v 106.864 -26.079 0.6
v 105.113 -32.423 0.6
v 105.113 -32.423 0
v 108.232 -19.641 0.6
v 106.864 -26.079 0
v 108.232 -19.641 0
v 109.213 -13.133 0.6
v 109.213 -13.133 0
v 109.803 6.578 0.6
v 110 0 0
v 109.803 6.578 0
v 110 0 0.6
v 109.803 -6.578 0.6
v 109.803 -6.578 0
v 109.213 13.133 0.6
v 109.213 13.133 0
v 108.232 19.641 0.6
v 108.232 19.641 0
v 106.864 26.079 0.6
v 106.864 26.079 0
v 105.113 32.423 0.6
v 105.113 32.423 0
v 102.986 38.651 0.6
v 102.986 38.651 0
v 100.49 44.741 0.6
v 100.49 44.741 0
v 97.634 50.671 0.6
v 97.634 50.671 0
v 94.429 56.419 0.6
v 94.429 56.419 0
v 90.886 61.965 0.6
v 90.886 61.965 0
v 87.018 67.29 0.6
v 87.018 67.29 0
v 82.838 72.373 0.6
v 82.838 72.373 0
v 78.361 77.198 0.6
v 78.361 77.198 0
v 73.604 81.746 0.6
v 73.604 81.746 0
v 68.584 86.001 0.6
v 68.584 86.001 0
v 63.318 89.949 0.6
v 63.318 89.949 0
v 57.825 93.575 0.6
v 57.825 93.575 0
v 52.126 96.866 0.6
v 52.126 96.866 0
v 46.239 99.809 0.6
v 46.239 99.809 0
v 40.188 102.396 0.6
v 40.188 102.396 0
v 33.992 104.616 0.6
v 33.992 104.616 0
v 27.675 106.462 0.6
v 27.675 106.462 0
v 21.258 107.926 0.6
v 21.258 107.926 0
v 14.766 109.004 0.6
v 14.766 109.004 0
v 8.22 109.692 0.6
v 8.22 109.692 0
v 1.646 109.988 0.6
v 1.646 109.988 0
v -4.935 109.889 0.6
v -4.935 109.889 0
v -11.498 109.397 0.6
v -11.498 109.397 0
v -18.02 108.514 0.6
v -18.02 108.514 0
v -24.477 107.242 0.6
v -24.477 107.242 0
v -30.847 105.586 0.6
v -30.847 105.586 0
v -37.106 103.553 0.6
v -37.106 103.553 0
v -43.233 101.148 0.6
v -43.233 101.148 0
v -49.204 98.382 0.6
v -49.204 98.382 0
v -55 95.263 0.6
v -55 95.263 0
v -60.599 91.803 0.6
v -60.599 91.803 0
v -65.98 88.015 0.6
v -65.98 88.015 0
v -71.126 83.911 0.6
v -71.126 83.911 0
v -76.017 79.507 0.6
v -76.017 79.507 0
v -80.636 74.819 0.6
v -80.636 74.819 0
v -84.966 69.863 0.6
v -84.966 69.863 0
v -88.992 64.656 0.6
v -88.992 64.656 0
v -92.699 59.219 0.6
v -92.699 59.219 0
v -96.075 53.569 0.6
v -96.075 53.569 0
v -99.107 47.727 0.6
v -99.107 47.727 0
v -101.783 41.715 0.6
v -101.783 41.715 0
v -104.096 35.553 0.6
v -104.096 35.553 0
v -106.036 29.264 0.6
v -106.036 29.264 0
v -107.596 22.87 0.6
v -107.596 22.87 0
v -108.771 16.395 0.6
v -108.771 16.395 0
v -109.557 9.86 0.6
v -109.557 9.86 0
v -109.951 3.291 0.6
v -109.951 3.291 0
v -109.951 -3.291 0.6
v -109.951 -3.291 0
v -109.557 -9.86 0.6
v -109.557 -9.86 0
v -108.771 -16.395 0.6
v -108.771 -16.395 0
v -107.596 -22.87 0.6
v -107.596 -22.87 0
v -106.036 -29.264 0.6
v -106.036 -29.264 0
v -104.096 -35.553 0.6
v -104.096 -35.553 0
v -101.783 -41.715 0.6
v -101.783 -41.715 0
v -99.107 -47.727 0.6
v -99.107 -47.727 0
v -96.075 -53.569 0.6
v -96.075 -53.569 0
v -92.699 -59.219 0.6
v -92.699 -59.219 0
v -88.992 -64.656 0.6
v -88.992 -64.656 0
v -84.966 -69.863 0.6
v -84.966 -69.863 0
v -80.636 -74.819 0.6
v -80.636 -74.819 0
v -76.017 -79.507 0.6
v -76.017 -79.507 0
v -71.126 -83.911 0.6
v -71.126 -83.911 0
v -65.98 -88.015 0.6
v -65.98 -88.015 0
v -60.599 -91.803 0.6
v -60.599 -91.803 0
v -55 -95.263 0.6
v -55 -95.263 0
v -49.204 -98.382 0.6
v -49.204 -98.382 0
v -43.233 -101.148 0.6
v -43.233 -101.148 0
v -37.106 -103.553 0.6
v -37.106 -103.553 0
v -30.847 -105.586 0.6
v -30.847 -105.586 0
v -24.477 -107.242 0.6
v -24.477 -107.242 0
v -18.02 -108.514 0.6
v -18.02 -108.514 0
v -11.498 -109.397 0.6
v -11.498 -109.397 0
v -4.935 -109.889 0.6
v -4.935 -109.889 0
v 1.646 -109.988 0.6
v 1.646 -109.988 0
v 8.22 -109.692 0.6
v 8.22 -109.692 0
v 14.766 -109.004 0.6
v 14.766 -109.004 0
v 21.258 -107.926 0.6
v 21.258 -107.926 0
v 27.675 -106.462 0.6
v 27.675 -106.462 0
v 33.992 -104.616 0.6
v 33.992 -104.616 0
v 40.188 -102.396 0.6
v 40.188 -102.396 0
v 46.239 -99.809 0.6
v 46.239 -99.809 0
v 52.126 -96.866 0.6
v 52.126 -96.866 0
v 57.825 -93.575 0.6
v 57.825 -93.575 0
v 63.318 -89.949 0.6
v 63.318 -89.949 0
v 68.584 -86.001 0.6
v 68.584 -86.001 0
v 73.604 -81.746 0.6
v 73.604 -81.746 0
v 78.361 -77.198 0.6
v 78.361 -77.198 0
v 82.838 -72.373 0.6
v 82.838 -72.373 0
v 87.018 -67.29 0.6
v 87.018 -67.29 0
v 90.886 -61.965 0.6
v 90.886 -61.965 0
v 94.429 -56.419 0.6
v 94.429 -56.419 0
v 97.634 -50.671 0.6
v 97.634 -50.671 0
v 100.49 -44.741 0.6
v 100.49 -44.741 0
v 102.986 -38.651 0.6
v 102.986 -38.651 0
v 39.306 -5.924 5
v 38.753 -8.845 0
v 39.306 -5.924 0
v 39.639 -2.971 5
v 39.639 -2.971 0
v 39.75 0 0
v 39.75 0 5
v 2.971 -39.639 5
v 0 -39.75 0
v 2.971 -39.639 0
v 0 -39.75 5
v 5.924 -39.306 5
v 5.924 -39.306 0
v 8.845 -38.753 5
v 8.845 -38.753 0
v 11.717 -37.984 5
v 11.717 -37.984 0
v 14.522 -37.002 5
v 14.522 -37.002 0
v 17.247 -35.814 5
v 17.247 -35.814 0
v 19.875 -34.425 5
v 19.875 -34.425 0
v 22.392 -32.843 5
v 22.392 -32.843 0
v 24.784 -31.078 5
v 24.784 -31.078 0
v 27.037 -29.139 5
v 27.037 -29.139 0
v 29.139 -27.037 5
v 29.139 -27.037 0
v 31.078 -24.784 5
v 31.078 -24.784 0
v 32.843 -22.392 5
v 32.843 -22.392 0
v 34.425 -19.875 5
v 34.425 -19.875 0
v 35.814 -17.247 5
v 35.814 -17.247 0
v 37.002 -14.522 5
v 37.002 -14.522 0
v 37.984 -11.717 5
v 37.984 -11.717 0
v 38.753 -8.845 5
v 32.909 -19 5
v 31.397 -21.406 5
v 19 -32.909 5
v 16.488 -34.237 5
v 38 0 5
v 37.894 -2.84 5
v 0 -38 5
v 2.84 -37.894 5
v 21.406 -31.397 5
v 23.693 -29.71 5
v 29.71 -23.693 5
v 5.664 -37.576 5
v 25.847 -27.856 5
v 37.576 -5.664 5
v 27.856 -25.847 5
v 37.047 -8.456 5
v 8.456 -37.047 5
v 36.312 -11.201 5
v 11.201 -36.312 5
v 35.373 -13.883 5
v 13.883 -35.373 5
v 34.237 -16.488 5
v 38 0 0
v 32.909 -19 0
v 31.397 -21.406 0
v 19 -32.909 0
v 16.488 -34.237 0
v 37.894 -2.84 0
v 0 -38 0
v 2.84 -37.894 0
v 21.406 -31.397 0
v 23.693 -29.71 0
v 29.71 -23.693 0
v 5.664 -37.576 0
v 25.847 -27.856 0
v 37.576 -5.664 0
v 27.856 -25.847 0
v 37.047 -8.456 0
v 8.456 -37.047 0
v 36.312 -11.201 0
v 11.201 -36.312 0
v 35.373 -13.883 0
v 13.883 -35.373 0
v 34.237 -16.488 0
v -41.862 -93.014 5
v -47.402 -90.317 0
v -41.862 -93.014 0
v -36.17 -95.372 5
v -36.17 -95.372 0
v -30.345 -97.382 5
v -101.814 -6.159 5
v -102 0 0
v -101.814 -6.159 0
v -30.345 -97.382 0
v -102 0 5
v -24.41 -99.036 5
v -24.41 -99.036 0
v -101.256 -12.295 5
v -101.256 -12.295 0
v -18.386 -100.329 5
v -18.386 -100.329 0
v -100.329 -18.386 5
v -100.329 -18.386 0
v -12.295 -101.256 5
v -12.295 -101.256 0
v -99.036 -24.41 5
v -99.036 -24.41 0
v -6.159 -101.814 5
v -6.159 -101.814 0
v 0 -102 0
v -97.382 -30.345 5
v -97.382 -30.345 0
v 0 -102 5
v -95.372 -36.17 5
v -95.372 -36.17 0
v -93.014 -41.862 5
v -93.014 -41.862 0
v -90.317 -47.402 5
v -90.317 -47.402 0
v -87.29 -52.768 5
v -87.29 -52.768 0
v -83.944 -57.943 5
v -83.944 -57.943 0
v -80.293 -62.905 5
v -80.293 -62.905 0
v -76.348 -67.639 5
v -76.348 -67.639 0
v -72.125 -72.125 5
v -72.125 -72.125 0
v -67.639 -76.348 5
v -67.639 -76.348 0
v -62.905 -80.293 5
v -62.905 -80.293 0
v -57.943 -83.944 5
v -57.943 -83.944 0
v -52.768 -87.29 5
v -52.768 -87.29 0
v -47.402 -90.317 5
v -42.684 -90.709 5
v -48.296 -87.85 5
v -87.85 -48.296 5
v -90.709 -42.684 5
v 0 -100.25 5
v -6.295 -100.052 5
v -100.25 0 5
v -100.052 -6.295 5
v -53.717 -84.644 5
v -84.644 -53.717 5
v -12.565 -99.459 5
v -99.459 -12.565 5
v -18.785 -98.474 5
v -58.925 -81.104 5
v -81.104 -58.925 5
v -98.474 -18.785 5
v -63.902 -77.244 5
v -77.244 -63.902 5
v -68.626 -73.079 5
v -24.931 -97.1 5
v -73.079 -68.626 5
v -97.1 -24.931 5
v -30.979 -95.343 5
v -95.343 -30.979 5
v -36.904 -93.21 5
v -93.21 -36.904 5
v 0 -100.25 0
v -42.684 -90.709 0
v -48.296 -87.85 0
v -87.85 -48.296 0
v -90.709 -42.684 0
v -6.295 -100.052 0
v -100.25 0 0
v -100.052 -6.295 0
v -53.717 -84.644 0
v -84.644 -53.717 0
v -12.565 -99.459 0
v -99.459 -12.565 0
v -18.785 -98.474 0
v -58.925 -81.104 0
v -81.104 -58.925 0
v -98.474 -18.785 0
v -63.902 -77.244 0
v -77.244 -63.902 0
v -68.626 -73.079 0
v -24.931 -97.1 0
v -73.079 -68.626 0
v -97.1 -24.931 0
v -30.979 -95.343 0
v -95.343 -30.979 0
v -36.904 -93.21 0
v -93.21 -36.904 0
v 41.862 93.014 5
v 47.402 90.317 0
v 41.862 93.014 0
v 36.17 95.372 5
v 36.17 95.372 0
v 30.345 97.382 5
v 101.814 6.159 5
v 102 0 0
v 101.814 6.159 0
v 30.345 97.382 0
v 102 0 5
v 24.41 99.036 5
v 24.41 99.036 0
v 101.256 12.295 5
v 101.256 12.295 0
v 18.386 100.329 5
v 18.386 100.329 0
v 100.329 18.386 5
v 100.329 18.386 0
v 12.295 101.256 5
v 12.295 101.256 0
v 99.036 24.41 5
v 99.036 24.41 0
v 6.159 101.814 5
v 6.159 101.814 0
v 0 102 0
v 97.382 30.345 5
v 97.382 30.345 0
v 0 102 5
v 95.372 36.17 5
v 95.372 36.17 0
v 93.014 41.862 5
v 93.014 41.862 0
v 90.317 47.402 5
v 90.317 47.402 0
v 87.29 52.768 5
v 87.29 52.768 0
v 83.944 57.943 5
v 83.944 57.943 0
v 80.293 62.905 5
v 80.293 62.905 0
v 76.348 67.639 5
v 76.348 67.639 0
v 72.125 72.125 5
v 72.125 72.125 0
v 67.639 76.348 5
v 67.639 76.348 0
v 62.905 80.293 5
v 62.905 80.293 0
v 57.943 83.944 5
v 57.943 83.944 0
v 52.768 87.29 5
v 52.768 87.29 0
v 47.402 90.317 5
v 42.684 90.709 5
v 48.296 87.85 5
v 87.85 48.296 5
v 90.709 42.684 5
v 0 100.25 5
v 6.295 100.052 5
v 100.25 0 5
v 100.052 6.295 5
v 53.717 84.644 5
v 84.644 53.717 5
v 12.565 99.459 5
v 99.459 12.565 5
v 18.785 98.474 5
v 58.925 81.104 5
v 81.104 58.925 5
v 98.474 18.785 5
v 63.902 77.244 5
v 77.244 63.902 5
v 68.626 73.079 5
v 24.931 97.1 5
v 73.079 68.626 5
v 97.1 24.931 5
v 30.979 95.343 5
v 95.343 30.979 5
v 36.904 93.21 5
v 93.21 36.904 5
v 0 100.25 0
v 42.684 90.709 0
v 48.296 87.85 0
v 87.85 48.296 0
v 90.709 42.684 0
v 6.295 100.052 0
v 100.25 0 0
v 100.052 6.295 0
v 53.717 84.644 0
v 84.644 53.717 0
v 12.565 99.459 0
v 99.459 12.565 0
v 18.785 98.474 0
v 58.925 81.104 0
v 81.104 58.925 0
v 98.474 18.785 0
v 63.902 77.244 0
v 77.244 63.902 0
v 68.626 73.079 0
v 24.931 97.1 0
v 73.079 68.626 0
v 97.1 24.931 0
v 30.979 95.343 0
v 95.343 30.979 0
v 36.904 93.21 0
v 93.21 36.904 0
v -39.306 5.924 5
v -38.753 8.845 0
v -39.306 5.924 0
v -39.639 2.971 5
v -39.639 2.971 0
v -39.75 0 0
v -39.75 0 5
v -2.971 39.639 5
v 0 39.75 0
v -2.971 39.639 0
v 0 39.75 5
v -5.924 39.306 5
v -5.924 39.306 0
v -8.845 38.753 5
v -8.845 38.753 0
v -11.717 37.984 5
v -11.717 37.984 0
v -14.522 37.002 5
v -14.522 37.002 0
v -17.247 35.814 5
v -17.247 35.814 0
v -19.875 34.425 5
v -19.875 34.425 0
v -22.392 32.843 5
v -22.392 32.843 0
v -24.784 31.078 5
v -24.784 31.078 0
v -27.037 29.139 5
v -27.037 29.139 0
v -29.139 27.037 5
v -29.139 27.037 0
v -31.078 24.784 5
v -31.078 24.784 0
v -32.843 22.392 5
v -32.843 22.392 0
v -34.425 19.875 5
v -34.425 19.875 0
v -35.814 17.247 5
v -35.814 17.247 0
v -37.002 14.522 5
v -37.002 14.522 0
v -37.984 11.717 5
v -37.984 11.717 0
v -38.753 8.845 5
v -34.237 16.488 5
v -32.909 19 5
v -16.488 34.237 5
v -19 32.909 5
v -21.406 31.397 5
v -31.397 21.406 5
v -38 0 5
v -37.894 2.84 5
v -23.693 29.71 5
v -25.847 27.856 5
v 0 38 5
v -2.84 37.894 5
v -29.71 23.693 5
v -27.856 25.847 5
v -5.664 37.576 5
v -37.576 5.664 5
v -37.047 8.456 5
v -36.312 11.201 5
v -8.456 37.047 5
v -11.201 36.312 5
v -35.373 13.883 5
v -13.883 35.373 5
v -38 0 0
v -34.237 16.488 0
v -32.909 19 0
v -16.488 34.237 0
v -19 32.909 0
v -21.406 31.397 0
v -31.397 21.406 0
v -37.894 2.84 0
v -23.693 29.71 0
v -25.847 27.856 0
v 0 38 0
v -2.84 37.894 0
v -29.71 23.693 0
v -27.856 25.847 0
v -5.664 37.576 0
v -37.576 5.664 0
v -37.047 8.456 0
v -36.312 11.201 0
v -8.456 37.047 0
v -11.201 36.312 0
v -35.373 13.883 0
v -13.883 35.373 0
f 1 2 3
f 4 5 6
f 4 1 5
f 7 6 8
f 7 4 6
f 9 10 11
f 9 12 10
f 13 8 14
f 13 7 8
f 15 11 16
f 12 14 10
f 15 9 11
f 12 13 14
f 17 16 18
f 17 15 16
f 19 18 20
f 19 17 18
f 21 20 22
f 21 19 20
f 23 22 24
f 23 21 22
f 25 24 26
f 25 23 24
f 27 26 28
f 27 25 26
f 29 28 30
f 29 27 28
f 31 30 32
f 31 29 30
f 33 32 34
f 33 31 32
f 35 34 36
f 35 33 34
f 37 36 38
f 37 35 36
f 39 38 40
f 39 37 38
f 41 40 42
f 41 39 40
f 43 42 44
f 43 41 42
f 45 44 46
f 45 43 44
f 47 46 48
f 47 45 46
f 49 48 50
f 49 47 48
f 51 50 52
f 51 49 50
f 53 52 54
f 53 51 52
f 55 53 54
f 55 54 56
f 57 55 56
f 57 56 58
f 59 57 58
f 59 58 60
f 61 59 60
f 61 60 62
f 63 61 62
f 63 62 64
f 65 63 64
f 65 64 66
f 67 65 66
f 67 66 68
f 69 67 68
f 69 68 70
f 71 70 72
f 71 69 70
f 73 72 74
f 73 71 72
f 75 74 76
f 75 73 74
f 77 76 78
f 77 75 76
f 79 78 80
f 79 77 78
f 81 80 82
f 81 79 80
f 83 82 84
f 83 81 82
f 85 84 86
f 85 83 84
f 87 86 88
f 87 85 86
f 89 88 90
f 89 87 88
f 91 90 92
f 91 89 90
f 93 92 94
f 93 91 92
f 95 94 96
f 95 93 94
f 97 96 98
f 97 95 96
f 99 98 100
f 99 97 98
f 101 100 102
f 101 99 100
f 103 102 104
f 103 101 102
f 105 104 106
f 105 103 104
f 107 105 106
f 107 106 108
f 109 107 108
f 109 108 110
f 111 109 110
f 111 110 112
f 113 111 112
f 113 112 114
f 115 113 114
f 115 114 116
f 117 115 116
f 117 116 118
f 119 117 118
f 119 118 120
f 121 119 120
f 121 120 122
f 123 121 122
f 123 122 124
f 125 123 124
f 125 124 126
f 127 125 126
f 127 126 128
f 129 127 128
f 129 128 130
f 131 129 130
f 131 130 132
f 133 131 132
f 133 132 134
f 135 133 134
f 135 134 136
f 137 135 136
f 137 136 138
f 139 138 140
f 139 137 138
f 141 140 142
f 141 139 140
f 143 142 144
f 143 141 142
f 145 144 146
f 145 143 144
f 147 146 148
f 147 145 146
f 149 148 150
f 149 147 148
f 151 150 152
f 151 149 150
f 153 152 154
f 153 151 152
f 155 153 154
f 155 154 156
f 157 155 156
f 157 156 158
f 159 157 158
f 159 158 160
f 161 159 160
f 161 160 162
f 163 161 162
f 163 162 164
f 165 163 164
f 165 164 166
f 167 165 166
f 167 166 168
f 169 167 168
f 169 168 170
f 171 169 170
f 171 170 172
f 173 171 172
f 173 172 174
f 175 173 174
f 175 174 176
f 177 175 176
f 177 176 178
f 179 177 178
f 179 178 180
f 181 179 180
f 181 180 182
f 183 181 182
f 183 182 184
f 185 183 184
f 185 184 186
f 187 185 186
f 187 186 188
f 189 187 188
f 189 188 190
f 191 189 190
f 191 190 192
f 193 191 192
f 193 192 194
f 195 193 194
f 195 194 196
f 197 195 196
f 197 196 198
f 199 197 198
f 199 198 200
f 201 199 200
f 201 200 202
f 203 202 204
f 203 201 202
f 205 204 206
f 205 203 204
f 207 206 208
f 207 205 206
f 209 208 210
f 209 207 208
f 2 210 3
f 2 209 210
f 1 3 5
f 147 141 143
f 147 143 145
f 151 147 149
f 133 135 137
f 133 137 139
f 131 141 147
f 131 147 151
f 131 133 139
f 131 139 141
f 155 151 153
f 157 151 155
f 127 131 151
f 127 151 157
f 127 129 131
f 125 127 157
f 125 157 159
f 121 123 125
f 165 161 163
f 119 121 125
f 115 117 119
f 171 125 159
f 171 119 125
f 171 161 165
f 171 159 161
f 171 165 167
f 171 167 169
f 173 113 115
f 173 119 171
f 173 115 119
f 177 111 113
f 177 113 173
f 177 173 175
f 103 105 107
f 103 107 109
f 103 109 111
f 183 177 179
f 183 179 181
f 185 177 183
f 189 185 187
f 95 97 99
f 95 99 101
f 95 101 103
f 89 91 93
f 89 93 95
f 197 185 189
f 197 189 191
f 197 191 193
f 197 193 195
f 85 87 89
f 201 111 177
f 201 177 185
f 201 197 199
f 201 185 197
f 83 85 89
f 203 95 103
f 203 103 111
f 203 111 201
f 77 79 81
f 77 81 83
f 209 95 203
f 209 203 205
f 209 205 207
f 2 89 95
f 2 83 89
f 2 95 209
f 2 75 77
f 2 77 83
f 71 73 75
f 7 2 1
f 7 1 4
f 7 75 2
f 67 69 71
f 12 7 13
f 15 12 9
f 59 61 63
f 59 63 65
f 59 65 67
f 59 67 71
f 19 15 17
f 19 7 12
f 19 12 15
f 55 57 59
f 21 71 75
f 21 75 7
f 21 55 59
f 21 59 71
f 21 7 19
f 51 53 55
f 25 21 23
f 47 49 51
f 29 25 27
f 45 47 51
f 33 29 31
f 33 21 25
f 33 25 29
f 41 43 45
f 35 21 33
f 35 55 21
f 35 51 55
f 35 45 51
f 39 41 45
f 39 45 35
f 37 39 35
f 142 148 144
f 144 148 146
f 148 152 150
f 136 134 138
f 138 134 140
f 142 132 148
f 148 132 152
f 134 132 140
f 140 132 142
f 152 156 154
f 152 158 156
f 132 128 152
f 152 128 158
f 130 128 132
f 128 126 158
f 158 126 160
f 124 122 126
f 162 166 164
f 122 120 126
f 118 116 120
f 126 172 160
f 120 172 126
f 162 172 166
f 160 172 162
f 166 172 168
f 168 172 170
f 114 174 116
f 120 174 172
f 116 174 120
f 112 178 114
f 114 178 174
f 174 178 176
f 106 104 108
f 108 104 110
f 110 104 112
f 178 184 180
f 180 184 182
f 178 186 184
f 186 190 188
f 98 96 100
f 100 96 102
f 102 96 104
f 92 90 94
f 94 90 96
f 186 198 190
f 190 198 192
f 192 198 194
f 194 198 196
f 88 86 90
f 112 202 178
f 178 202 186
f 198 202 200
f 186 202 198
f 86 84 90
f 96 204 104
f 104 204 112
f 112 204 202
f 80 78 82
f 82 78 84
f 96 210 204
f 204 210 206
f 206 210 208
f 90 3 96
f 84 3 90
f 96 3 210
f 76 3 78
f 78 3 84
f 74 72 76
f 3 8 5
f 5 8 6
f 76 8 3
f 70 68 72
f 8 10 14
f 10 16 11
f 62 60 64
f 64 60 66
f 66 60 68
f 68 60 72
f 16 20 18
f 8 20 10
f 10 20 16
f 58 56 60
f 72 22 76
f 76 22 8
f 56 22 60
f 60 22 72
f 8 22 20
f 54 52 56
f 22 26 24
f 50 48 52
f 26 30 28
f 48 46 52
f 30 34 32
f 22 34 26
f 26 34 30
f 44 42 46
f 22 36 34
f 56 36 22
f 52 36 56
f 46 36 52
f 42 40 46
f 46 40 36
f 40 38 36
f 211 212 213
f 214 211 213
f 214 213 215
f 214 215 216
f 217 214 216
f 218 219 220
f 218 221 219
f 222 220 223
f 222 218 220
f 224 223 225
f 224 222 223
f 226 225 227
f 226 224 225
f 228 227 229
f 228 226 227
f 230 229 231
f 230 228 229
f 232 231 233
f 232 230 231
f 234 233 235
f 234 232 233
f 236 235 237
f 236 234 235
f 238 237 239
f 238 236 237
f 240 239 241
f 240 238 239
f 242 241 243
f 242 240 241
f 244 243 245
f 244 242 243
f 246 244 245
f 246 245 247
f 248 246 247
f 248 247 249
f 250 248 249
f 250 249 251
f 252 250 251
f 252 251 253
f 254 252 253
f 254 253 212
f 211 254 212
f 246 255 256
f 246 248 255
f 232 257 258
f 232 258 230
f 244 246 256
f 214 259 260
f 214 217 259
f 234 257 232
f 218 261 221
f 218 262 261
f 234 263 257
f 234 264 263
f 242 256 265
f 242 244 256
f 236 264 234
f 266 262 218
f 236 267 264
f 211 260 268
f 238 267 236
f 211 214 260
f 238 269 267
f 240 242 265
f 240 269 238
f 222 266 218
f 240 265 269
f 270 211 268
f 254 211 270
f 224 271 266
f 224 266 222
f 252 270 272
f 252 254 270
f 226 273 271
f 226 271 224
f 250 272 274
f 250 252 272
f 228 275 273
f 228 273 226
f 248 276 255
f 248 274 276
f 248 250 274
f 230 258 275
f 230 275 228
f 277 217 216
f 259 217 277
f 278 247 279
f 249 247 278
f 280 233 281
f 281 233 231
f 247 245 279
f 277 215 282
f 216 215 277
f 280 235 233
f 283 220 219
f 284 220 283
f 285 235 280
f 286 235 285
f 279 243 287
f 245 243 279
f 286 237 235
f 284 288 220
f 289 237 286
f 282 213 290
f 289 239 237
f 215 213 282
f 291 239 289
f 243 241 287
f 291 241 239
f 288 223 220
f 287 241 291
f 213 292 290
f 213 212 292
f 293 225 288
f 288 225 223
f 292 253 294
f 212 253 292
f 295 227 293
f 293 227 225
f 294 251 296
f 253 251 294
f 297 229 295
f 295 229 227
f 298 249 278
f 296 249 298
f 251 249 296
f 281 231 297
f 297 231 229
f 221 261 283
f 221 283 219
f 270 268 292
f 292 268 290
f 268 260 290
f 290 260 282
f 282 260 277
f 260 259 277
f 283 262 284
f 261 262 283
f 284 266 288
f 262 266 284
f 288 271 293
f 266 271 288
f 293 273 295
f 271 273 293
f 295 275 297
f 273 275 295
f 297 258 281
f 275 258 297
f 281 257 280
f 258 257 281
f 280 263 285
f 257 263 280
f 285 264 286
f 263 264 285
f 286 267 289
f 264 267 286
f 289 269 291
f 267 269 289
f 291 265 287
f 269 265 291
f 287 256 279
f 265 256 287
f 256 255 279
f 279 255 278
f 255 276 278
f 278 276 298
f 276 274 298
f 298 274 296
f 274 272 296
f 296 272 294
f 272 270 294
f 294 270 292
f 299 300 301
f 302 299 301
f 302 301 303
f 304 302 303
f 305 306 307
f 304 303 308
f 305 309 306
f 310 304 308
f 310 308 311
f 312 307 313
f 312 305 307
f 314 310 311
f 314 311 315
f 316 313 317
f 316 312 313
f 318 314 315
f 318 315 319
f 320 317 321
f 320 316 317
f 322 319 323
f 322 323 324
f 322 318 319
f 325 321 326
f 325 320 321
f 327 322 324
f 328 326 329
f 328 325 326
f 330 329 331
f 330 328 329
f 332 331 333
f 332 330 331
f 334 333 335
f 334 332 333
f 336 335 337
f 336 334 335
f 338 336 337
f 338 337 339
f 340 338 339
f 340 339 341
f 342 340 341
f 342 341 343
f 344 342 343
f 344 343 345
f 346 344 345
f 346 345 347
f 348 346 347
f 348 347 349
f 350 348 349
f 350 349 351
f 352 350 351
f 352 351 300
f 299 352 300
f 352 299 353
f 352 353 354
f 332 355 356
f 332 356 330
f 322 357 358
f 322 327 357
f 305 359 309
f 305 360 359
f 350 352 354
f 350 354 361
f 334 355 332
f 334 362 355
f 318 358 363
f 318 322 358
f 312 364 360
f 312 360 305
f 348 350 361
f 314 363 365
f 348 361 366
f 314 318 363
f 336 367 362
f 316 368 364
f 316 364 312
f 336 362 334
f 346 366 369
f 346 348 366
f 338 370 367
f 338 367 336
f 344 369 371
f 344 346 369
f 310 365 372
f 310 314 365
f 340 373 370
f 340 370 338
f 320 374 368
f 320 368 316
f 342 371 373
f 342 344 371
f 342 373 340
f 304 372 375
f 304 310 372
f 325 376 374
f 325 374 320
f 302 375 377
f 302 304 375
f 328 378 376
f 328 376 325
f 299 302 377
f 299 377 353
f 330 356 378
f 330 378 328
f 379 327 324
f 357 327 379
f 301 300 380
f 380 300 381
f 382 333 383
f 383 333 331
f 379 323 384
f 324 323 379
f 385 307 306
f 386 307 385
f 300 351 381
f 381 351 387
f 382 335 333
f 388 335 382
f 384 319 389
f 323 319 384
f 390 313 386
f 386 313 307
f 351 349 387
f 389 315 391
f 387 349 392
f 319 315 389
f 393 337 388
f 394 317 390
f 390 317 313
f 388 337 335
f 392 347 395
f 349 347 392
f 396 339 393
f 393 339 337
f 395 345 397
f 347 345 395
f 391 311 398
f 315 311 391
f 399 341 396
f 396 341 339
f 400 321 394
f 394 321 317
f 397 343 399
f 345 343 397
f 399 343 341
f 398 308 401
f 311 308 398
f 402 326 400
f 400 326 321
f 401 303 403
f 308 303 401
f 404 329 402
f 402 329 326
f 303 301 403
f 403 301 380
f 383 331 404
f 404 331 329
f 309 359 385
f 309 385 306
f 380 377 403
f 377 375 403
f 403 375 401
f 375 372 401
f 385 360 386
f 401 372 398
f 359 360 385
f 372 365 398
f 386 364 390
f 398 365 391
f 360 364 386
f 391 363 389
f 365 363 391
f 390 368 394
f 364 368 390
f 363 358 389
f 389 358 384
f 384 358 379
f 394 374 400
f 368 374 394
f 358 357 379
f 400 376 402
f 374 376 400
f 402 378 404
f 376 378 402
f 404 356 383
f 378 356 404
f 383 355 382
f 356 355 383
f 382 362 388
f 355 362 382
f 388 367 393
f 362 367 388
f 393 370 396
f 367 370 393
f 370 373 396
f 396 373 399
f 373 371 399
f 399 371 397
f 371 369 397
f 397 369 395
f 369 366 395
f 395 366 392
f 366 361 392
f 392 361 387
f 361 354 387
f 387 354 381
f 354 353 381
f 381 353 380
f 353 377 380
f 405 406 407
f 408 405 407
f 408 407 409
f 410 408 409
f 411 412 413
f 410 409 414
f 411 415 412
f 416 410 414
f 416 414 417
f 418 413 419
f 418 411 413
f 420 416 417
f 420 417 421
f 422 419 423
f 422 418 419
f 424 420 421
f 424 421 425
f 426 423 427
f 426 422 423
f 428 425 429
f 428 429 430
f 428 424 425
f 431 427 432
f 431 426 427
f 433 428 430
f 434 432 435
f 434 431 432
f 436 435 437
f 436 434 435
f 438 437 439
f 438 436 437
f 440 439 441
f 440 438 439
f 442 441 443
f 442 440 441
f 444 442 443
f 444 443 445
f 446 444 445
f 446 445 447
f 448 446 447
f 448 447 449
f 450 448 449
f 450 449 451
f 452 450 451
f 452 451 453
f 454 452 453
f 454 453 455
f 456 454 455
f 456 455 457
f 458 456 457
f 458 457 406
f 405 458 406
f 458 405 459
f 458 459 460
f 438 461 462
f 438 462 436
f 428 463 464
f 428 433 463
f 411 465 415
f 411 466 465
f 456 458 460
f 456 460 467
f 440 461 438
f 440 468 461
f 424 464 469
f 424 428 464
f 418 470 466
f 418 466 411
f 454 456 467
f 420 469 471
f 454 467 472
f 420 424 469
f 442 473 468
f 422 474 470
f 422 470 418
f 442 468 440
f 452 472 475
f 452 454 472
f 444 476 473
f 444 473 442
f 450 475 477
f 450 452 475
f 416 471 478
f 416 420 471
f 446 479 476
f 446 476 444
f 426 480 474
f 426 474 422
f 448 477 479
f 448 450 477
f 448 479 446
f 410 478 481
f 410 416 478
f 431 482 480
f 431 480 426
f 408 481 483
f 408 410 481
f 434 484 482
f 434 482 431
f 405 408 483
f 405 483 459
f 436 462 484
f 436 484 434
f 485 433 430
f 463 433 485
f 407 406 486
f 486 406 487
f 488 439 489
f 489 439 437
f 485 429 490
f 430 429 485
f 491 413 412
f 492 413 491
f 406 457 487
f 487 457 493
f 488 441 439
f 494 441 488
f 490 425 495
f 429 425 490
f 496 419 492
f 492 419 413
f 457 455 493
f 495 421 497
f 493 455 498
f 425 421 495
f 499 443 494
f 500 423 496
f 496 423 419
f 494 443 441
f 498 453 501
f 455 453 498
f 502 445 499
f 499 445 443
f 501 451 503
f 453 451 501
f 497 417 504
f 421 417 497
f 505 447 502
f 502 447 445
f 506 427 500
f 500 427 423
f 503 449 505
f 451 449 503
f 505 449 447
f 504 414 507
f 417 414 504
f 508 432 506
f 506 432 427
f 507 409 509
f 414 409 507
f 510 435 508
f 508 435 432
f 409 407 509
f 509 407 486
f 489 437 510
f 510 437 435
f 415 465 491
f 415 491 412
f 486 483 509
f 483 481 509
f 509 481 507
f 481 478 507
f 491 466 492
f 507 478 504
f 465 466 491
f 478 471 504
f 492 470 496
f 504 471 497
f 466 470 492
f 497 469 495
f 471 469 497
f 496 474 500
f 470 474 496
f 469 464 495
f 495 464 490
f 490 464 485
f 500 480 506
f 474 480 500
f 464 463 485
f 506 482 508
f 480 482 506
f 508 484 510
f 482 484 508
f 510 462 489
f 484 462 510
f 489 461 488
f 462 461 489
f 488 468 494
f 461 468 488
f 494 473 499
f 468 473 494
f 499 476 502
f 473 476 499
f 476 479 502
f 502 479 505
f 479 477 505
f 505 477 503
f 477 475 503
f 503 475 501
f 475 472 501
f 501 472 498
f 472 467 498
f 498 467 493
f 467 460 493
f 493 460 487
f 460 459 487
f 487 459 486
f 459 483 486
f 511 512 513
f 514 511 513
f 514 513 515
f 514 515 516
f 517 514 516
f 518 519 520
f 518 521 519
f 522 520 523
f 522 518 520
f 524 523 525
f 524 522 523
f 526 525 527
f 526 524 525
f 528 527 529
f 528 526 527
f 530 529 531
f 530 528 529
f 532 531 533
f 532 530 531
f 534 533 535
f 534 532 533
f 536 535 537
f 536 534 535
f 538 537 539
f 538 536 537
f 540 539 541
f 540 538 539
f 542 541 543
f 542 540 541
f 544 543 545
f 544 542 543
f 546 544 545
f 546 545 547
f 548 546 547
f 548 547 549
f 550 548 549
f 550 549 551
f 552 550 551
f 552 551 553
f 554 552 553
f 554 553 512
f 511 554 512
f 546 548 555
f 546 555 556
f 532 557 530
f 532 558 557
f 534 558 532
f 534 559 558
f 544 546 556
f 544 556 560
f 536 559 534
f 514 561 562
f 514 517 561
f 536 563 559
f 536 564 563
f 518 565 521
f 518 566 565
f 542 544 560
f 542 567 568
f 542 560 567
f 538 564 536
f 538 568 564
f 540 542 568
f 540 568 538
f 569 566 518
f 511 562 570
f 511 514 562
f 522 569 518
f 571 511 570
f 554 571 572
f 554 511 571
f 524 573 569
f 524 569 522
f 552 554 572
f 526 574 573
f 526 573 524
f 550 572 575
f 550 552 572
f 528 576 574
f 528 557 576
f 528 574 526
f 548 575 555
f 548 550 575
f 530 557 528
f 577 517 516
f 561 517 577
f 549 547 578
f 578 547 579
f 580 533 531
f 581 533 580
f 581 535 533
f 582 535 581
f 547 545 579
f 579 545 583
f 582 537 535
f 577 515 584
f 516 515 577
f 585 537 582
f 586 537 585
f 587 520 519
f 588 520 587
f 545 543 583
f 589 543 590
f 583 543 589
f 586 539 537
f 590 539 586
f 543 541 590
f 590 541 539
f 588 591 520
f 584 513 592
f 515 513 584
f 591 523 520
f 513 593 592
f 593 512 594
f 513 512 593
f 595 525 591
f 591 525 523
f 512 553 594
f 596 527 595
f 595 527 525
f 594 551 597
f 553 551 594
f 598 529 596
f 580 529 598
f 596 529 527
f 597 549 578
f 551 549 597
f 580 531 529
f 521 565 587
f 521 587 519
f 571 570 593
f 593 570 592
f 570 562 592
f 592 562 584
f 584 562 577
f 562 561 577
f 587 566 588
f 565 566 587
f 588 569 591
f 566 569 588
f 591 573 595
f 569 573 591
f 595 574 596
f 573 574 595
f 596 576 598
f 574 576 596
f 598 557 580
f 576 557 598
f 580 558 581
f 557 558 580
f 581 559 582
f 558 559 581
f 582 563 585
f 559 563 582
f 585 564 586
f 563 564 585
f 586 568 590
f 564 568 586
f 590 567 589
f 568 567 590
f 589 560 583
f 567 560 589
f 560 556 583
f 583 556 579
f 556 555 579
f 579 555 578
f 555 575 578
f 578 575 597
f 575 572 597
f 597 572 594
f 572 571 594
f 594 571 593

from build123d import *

# Parameters (mm, degrees)
CYLINDER_R             = 110
CYLINDER_DEPTH         = 0.6
CYLINDER002_W          = 100.25
CYLINDER002_H          = 5
CYLINDER002_ANGLE      = 90
CYLINDER001_W          = 102
CYLINDER001_H          = 5
CYLINDER001_ANGLE      = 90
CYLINDER012_W          = 38
CYLINDER012_H          = 5
CYLINDER012_ANGLE      = 90
CYLINDER013_W          = 39.75
CYLINDER013_H          = 5
CYLINDER013_ANGLE      = 90
CUT007_PLACEMENT_ANGLE = 90
CYLINDER015_W          = 100.25
CYLINDER015_H          = 5
CYLINDER015_ANGLE      = 90
CYLINDER014_W          = 102
CYLINDER014_H          = 5
CYLINDER014_ANGLE      = 90
CUT008_PLACEMENT_ANGLE = 180
CYLINDER016_W          = 38
CYLINDER016_H          = 5
CYLINDER016_ANGLE      = 90
CYLINDER017_W          = 39.75
CYLINDER017_H          = 5
CYLINDER017_ANGLE      = 90
CUT009_PLACEMENT_ANGLE = 270


with BuildPart() as cilindro:
    # Cylinder → Cylinder (new body)
    with BuildSketch(Plane.XY):
        Circle(CYLINDER_R)
    extrude(amount=CYLINDER_DEPTH)


with BuildPart() as cilindro002:
    # Cylinder002 → Cylinder002 (revolve)
    with BuildSketch(Plane.XZ):
        with Locations((50.125, 2.5)):
            Rectangle(CYLINDER002_W, CYLINDER002_H)
    revolve(axis=Axis((0, 0, 0), (0, 0, 1)), revolution_arc=CYLINDER002_ANGLE)


with BuildPart() as cut:
    # Cylinder001 → Cylinder001 (revolve)
    with BuildSketch(Plane.XZ):
        with Locations((51, 2.5)):
            Rectangle(CYLINDER001_W, CYLINDER001_H)
    revolve(axis=Axis((0, 0, 0), (0, 0, 1)), revolution_arc=CYLINDER001_ANGLE)

    # Cut: cut Cilindro002
    add(cilindro002.part, mode=Mode.SUBTRACT)


with BuildPart() as cilindro012:
    # Cylinder012 → Cylinder012 (revolve)
    with BuildSketch(Plane.XZ):
        with Locations((19, 2.5)):
            Rectangle(CYLINDER012_W, CYLINDER012_H)
    revolve(axis=Axis((0, 0, 0), (0, 0, 1)), revolution_arc=CYLINDER012_ANGLE)


with BuildPart() as cut007:
    # Cylinder013 → Cylinder013 (revolve)
    with BuildSketch(Plane.XZ):
        with Locations((19.875, 2.5)):
            Rectangle(CYLINDER013_W, CYLINDER013_H)
    revolve(axis=Axis((0, 0, 0), (0, 0, 1)), revolution_arc=CYLINDER013_ANGLE)

    # Cut007: cut Cilindro012
    add(cilindro012.part, mode=Mode.SUBTRACT)


with BuildPart() as cut007_1:
    # Cut007 placement: moved
    add(cut007.part.rotate(Axis((0, 0, 0), (0, 0, 1)), CUT007_PLACEMENT_ANGLE))


with BuildPart() as cilindro015:
    # Cylinder015 → Cylinder015 (revolve)
    with BuildSketch(Plane.XZ):
        with Locations((50.125, 2.5)):
            Rectangle(CYLINDER015_W, CYLINDER015_H)
    revolve(axis=Axis((0, 0, 0), (0, 0, 1)), revolution_arc=CYLINDER015_ANGLE)


with BuildPart() as cut008:
    # Cylinder014 → Cylinder014 (revolve)
    with BuildSketch(Plane.XZ):
        with Locations((51, 2.5)):
            Rectangle(CYLINDER014_W, CYLINDER014_H)
    revolve(axis=Axis((0, 0, 0), (0, 0, 1)), revolution_arc=CYLINDER014_ANGLE)

    # Cut008: cut Cilindro015
    add(cilindro015.part, mode=Mode.SUBTRACT)


with BuildPart() as cut008_1:
    # Cut008 placement: moved
    add(cut008.part.rotate(Axis((0, 0, 0), (0, 0, 1)), CUT008_PLACEMENT_ANGLE))


with BuildPart() as cilindro016:
    # Cylinder016 → Cylinder016 (revolve)
    with BuildSketch(Plane.XZ):
        with Locations((19, 2.5)):
            Rectangle(CYLINDER016_W, CYLINDER016_H)
    revolve(axis=Axis((0, 0, 0), (0, 0, 1)), revolution_arc=CYLINDER016_ANGLE)


with BuildPart() as cut009:
    # Cylinder017 → Cylinder017 (revolve)
    with BuildSketch(Plane.XZ):
        with Locations((19.875, 2.5)):
            Rectangle(CYLINDER017_W, CYLINDER017_H)
    revolve(axis=Axis((0, 0, 0), (0, 0, 1)), revolution_arc=CYLINDER017_ANGLE)

    # Cut009: cut Cilindro016
    add(cilindro016.part, mode=Mode.SUBTRACT)


with BuildPart() as cut009_1:
    # Cut009 placement: moved
    add(cut009.part.rotate(Axis((0, 0, 0), (0, 0, 1)), CUT009_PLACEMENT_ANGLE))


solid = Compound([cilindro.part, cut.part, cut007_1.part, cut008_1.part, cut009_1.part])
